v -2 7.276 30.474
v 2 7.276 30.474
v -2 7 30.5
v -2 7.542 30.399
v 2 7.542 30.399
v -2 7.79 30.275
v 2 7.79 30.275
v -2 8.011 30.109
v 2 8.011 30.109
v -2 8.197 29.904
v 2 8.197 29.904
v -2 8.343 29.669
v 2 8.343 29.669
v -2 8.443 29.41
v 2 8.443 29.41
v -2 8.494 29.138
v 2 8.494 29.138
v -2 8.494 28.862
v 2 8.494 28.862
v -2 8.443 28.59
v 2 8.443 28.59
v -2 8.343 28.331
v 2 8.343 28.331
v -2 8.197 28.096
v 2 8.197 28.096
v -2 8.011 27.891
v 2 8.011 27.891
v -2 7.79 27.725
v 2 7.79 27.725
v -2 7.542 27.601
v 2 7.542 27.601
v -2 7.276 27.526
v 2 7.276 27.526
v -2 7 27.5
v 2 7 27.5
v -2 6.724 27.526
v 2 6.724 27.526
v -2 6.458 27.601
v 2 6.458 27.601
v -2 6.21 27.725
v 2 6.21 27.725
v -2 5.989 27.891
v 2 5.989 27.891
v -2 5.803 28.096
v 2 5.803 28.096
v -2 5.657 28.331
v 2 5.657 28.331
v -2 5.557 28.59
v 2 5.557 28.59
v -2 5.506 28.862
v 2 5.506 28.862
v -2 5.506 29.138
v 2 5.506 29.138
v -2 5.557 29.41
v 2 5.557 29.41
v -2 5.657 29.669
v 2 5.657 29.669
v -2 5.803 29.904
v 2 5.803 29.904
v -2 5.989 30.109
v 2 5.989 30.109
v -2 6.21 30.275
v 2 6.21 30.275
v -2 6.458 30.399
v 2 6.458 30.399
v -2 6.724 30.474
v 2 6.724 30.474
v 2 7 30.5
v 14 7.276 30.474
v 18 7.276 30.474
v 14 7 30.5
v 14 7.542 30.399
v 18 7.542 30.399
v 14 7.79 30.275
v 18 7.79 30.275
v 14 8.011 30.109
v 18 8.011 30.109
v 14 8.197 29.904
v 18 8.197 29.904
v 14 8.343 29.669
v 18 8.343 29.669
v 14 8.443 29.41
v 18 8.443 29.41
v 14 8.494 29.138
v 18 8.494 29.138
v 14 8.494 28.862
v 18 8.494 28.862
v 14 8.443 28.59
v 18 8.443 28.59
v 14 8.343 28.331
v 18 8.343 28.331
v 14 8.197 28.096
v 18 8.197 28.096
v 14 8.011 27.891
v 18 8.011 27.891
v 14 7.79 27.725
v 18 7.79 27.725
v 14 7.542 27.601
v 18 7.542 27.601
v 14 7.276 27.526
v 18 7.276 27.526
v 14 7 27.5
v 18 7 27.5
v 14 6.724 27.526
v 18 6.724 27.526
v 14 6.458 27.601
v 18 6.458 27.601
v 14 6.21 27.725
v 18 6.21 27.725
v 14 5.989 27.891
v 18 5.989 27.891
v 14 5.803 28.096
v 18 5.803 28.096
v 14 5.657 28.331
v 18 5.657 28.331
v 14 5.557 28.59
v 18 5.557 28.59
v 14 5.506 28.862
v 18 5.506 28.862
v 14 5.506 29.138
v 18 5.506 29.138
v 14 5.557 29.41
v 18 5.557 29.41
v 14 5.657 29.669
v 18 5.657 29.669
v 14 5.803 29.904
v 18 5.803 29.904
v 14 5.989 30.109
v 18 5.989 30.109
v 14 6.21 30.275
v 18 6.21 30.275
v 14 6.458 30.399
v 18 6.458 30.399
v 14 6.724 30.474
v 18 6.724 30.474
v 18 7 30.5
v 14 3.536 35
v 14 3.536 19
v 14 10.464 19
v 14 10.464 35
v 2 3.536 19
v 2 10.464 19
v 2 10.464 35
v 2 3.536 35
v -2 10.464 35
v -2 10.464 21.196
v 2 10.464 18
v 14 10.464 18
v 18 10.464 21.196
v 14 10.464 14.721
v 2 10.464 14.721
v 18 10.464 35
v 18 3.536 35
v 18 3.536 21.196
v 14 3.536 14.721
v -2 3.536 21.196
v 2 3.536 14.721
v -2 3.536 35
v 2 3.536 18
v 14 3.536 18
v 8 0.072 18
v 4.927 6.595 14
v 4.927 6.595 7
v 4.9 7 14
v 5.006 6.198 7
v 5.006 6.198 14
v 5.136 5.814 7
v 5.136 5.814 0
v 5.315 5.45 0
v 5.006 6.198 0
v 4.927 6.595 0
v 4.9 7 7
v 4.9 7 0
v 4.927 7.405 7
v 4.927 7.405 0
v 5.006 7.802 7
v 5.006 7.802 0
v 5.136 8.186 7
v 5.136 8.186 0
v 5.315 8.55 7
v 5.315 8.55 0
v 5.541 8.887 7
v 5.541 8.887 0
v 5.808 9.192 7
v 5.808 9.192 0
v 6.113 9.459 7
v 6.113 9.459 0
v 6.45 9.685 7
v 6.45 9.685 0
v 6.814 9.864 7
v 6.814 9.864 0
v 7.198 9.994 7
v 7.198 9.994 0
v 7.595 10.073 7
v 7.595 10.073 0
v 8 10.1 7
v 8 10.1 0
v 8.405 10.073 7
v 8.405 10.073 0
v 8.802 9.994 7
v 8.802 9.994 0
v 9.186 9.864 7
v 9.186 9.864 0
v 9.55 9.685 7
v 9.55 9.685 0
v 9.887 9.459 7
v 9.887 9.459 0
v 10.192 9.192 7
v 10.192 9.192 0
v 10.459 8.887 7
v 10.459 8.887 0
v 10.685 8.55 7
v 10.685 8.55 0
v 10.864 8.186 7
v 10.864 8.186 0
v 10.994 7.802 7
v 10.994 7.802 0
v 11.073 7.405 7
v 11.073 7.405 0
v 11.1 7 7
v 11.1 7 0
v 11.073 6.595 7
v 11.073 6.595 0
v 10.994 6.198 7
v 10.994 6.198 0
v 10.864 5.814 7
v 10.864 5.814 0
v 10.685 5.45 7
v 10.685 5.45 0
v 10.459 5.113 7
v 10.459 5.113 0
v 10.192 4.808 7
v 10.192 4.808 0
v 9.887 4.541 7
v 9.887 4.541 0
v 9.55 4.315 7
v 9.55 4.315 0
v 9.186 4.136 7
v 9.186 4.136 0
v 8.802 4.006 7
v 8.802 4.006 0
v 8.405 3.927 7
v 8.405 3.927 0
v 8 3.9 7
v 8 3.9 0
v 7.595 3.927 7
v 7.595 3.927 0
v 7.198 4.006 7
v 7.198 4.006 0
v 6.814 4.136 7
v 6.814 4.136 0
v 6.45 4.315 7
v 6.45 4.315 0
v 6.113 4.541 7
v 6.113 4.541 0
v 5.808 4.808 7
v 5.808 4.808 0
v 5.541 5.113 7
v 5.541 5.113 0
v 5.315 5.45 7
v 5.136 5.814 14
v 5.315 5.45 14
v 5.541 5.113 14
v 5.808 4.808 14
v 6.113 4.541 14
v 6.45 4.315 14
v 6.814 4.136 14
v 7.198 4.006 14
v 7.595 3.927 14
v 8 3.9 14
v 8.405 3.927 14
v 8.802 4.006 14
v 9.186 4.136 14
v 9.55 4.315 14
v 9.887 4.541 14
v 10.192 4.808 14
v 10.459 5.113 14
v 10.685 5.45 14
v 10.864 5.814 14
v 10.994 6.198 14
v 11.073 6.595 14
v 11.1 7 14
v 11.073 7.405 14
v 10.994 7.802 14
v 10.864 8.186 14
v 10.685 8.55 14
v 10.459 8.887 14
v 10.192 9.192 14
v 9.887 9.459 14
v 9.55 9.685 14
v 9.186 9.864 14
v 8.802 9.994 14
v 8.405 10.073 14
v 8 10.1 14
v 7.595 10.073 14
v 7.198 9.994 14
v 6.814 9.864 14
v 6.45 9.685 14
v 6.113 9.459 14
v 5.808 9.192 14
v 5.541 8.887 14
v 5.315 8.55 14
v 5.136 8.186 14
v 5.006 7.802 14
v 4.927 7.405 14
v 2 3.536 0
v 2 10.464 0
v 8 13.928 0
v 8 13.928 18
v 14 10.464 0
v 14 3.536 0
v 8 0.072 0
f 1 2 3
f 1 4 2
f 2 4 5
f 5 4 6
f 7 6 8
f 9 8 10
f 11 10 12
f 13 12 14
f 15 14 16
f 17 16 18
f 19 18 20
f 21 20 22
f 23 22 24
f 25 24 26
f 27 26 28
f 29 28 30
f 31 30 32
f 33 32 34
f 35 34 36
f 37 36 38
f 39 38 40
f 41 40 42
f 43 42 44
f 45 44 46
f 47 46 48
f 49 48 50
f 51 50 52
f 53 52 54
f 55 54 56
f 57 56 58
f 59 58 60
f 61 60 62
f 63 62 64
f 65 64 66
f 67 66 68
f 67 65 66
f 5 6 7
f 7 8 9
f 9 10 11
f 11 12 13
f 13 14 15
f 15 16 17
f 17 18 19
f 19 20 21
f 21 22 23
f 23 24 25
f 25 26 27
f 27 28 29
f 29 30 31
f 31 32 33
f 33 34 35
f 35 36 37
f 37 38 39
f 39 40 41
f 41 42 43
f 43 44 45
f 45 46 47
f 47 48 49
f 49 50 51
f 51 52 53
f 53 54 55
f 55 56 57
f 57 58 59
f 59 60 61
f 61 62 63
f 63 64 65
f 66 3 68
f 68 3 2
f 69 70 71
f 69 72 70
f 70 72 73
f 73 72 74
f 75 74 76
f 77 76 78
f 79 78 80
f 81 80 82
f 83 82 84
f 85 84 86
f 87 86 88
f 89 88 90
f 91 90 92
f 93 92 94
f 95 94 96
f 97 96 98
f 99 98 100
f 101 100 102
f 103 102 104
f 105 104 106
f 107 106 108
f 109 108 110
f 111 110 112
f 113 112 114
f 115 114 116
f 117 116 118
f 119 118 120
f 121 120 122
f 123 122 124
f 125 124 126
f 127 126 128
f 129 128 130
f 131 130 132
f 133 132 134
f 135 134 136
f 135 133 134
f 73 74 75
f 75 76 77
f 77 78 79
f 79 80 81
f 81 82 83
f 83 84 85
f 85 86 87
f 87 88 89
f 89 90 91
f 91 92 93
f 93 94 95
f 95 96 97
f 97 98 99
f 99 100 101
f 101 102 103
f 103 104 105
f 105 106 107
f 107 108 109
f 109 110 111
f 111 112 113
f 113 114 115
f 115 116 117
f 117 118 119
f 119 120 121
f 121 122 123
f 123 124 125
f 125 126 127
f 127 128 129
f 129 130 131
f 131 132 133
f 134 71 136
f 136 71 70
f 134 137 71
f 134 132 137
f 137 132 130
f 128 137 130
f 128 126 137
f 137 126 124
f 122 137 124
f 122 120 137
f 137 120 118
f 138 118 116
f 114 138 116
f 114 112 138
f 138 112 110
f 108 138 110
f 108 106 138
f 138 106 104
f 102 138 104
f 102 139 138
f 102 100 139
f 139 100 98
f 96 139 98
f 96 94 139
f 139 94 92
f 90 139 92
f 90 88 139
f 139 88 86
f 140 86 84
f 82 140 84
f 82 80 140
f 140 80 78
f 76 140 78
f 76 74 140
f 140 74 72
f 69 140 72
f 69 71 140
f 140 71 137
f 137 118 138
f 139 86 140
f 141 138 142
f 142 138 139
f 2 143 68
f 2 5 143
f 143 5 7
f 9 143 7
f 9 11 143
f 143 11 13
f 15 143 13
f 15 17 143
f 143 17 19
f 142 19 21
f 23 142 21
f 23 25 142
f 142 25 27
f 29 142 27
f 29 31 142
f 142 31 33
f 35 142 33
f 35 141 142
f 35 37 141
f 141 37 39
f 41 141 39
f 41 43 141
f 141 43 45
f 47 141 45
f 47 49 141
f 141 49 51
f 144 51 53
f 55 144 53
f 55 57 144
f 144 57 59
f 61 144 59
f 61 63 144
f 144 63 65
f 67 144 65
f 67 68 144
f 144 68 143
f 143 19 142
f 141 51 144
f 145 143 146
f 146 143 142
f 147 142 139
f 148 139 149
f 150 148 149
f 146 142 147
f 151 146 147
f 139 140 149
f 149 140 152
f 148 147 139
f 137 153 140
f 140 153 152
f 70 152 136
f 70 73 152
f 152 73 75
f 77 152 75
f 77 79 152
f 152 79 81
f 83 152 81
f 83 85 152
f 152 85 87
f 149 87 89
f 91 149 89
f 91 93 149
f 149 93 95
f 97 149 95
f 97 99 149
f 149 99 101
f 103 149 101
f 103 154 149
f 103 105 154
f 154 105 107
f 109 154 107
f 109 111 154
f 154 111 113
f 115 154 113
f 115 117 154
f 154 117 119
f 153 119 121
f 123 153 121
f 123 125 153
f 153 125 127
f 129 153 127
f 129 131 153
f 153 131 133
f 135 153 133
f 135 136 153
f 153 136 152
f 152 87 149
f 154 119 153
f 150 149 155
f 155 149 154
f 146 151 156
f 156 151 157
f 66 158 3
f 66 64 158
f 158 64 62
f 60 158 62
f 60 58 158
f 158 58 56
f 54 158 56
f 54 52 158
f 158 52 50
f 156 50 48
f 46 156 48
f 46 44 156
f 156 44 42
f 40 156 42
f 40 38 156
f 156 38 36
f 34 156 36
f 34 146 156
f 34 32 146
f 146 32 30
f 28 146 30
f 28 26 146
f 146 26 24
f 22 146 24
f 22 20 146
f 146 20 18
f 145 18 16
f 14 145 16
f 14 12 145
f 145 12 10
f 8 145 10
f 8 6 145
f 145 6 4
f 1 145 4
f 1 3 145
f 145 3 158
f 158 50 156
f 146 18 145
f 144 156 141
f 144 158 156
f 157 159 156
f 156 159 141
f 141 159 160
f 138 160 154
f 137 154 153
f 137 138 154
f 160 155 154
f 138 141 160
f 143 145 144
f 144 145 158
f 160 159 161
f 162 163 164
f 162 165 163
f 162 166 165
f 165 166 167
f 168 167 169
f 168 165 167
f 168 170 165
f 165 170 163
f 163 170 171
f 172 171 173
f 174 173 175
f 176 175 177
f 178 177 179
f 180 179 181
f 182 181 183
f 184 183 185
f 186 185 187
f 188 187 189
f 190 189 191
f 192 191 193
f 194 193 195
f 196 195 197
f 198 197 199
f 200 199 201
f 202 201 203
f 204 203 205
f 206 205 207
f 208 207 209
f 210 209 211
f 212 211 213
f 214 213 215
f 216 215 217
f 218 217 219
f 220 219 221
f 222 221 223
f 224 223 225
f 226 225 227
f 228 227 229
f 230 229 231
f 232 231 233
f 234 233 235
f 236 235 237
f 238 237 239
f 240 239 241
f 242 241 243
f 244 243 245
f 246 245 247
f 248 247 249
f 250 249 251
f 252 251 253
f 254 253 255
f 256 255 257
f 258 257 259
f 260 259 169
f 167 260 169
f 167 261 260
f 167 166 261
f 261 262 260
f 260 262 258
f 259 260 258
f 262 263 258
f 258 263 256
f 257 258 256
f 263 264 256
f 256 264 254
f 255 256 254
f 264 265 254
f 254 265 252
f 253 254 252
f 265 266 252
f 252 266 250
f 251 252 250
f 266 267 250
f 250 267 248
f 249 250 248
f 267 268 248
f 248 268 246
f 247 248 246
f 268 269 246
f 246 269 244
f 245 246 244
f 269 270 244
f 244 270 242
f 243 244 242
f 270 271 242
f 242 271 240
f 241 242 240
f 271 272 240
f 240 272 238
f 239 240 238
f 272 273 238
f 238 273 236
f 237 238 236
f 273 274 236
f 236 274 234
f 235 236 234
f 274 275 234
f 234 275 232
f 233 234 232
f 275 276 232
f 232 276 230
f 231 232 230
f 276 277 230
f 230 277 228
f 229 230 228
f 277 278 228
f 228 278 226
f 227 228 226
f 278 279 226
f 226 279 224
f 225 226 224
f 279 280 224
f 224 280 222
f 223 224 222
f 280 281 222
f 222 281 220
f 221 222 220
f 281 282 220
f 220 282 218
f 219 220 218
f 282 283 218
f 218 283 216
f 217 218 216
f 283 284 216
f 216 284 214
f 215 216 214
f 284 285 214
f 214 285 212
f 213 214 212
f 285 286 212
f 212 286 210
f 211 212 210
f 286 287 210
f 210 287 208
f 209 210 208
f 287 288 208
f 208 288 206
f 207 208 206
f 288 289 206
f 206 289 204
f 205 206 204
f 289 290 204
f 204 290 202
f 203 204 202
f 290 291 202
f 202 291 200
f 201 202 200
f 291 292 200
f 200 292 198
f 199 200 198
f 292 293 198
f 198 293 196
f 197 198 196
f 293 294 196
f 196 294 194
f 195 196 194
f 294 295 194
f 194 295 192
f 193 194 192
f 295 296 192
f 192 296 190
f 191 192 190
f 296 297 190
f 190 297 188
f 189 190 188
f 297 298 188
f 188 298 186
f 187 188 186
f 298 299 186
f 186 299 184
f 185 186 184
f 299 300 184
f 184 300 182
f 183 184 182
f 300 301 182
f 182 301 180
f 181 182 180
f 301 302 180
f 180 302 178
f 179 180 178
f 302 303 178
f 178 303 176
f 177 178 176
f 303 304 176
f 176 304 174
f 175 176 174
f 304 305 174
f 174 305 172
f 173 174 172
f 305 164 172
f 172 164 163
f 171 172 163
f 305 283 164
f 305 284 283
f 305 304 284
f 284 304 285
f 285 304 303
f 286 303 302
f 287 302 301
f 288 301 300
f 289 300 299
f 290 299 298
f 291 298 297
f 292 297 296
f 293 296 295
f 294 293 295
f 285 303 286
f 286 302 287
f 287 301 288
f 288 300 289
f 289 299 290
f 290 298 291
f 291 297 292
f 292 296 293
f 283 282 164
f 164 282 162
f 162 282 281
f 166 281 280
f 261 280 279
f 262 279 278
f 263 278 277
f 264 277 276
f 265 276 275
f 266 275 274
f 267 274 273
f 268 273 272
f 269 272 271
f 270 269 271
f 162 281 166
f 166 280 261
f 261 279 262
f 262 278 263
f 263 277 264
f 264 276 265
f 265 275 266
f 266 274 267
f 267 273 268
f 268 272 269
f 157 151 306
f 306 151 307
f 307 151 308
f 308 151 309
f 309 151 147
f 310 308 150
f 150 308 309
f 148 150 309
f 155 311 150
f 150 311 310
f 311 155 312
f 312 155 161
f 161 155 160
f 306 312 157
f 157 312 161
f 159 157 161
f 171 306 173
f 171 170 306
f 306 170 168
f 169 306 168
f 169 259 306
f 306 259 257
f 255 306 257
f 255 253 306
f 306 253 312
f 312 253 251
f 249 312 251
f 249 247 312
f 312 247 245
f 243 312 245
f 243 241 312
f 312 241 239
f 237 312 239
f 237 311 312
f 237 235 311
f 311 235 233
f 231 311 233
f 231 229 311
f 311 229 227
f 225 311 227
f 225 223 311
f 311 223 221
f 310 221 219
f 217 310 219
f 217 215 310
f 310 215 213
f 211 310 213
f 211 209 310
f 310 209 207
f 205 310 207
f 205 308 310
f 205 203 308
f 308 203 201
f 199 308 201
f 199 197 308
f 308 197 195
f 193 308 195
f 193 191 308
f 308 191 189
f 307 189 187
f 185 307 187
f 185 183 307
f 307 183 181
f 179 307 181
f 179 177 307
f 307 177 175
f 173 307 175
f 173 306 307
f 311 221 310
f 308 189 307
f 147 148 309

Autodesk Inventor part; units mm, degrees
ref_plane "YZ Plane" through (0, 0, 0) normal (1, 0, 0) x (0, 1, 0)
ref_plane "XZ Plane" through (0, 0, 0) normal (0, 1, 0) x (-1, 0, 0)
ref_plane "XY Plane" through (0, 0, 0) normal (0, 0, 1) x (1, 0, 0)
sketch "Sketch1" plane through (0, 0, 0) normal (0, 0, 1) x (1, 0, 0)
  line L0 (8, 0.0718) -> (2, 3.5359)
  line L1 (2, 3.5359) -> (2, 10.4641)
  line L2 (2, 10.4641) -> (8, 13.9282)
  line L3 (8, 13.9282) -> (14, 10.4641)
  line L4 (14, 10.4641) -> (14, 3.5359)
  line L5 (14, 3.5359) -> (8, 0.0718)
  point P0 (0, 0)
  point P1 (8, 7)
  dimension "d1" = 12
extrude "Extrusion1" add sketch "Sketch1" along normal blind 18
sketch "Sketch2" plane through (0, 0, 0) normal (0, 0, -1) x (-1, 0, 0)
  circle A0 centre (-8, 7) radius 3.1
  point P0 (0, 0)
  dimension "d5" = 6.2
extrude "Extrusion2" cut sketch "Sketch2" against normal blind 14
sketch "Sketch3" plane through (0, 0, 18) normal (0, 0, 1) x (1, 0, 0)
  line L0 (14, 3.5359) -> (8, 0.0718) projected
  line L1 (14, 3.5359) -> (2, 3.5359)
  line L2 (2, 3.5359) -> (2, 10.4641)
  line L3 (2, 10.4641) -> (14, 10.4641)
  line L4 (14, 10.4641) -> (14, 3.5359)
  point P0 (0, 0)
  dimension "d12" = 6.9282
extrude "Extrusion3" add sketch "Sketch3" along normal blind 17
sketch "Sketch4" plane through (2, 10.4641, 18) normal (0, 1, 0) x (1, 0, 0)
  line L0 (12, 0) -> (12, -17) projected
  line L1 (12, -17) -> (16, -17)
  line L2 (0, 0) -> (0, -17) projected
  line L3 (12, 0) -> (12, -17)
  line L4 (0, -17) -> (-4, -17)
  line L5 (0, 0) -> (0, -17)
  line L6 (16, -17) -> (16, -3.1957)
  line L7 (-4, -3.1957) -> (0, 3.2792)
  line L8 (16, -3.1957) -> (12, 3.2792)
  line L9 (12, 18) -> (12, 0) projected
  line L10 (0, 0) -> (0, 3.2792)
  line L11 (12, 0) -> (12, 3)
  line L12 (-4, -17) -> (-4, -3.1957)
  point P0 (-2, 18)
  dimension "d10" = 4
  dimension "d11" = 4
extrude "Extrusion4" add sketch "Sketch4" against normal blind 6.9282
sketch "Sketch5" plane through (2, 10.4641, 18) normal (0, 1, 0) x (1, 0, 0)
  line L0 (16, -17) -> (16, -17) projected
  line L1 (0, -17) -> (12, -17)
  line L2 (12, -17) -> (12, -1)
  line L3 (12, -1) -> (0, -1)
  line L4 (0, -1) -> (0, -17)
  point P0 (-2, 18)
  point P1 (-4, -17)
extrude "Extrusion5" cut sketch "Sketch5" against normal through all
sketch "Sketch6" plane through (-2, 10.4641, 21.1957) normal (-1, 0, 0) x (0, 0, 1)
  line L0 (13.8043, 0) -> (13.8043, -6.9282) projected
  circle A0 centre (7.8043, -3.4641) radius 1.5
  point P0 (-21.1957, -10.4641)
  dimension "d18" = 3
extrude "Extrusion6" cut sketch "Sketch6" against normal through all
properties part number "supportrodv1.2"
